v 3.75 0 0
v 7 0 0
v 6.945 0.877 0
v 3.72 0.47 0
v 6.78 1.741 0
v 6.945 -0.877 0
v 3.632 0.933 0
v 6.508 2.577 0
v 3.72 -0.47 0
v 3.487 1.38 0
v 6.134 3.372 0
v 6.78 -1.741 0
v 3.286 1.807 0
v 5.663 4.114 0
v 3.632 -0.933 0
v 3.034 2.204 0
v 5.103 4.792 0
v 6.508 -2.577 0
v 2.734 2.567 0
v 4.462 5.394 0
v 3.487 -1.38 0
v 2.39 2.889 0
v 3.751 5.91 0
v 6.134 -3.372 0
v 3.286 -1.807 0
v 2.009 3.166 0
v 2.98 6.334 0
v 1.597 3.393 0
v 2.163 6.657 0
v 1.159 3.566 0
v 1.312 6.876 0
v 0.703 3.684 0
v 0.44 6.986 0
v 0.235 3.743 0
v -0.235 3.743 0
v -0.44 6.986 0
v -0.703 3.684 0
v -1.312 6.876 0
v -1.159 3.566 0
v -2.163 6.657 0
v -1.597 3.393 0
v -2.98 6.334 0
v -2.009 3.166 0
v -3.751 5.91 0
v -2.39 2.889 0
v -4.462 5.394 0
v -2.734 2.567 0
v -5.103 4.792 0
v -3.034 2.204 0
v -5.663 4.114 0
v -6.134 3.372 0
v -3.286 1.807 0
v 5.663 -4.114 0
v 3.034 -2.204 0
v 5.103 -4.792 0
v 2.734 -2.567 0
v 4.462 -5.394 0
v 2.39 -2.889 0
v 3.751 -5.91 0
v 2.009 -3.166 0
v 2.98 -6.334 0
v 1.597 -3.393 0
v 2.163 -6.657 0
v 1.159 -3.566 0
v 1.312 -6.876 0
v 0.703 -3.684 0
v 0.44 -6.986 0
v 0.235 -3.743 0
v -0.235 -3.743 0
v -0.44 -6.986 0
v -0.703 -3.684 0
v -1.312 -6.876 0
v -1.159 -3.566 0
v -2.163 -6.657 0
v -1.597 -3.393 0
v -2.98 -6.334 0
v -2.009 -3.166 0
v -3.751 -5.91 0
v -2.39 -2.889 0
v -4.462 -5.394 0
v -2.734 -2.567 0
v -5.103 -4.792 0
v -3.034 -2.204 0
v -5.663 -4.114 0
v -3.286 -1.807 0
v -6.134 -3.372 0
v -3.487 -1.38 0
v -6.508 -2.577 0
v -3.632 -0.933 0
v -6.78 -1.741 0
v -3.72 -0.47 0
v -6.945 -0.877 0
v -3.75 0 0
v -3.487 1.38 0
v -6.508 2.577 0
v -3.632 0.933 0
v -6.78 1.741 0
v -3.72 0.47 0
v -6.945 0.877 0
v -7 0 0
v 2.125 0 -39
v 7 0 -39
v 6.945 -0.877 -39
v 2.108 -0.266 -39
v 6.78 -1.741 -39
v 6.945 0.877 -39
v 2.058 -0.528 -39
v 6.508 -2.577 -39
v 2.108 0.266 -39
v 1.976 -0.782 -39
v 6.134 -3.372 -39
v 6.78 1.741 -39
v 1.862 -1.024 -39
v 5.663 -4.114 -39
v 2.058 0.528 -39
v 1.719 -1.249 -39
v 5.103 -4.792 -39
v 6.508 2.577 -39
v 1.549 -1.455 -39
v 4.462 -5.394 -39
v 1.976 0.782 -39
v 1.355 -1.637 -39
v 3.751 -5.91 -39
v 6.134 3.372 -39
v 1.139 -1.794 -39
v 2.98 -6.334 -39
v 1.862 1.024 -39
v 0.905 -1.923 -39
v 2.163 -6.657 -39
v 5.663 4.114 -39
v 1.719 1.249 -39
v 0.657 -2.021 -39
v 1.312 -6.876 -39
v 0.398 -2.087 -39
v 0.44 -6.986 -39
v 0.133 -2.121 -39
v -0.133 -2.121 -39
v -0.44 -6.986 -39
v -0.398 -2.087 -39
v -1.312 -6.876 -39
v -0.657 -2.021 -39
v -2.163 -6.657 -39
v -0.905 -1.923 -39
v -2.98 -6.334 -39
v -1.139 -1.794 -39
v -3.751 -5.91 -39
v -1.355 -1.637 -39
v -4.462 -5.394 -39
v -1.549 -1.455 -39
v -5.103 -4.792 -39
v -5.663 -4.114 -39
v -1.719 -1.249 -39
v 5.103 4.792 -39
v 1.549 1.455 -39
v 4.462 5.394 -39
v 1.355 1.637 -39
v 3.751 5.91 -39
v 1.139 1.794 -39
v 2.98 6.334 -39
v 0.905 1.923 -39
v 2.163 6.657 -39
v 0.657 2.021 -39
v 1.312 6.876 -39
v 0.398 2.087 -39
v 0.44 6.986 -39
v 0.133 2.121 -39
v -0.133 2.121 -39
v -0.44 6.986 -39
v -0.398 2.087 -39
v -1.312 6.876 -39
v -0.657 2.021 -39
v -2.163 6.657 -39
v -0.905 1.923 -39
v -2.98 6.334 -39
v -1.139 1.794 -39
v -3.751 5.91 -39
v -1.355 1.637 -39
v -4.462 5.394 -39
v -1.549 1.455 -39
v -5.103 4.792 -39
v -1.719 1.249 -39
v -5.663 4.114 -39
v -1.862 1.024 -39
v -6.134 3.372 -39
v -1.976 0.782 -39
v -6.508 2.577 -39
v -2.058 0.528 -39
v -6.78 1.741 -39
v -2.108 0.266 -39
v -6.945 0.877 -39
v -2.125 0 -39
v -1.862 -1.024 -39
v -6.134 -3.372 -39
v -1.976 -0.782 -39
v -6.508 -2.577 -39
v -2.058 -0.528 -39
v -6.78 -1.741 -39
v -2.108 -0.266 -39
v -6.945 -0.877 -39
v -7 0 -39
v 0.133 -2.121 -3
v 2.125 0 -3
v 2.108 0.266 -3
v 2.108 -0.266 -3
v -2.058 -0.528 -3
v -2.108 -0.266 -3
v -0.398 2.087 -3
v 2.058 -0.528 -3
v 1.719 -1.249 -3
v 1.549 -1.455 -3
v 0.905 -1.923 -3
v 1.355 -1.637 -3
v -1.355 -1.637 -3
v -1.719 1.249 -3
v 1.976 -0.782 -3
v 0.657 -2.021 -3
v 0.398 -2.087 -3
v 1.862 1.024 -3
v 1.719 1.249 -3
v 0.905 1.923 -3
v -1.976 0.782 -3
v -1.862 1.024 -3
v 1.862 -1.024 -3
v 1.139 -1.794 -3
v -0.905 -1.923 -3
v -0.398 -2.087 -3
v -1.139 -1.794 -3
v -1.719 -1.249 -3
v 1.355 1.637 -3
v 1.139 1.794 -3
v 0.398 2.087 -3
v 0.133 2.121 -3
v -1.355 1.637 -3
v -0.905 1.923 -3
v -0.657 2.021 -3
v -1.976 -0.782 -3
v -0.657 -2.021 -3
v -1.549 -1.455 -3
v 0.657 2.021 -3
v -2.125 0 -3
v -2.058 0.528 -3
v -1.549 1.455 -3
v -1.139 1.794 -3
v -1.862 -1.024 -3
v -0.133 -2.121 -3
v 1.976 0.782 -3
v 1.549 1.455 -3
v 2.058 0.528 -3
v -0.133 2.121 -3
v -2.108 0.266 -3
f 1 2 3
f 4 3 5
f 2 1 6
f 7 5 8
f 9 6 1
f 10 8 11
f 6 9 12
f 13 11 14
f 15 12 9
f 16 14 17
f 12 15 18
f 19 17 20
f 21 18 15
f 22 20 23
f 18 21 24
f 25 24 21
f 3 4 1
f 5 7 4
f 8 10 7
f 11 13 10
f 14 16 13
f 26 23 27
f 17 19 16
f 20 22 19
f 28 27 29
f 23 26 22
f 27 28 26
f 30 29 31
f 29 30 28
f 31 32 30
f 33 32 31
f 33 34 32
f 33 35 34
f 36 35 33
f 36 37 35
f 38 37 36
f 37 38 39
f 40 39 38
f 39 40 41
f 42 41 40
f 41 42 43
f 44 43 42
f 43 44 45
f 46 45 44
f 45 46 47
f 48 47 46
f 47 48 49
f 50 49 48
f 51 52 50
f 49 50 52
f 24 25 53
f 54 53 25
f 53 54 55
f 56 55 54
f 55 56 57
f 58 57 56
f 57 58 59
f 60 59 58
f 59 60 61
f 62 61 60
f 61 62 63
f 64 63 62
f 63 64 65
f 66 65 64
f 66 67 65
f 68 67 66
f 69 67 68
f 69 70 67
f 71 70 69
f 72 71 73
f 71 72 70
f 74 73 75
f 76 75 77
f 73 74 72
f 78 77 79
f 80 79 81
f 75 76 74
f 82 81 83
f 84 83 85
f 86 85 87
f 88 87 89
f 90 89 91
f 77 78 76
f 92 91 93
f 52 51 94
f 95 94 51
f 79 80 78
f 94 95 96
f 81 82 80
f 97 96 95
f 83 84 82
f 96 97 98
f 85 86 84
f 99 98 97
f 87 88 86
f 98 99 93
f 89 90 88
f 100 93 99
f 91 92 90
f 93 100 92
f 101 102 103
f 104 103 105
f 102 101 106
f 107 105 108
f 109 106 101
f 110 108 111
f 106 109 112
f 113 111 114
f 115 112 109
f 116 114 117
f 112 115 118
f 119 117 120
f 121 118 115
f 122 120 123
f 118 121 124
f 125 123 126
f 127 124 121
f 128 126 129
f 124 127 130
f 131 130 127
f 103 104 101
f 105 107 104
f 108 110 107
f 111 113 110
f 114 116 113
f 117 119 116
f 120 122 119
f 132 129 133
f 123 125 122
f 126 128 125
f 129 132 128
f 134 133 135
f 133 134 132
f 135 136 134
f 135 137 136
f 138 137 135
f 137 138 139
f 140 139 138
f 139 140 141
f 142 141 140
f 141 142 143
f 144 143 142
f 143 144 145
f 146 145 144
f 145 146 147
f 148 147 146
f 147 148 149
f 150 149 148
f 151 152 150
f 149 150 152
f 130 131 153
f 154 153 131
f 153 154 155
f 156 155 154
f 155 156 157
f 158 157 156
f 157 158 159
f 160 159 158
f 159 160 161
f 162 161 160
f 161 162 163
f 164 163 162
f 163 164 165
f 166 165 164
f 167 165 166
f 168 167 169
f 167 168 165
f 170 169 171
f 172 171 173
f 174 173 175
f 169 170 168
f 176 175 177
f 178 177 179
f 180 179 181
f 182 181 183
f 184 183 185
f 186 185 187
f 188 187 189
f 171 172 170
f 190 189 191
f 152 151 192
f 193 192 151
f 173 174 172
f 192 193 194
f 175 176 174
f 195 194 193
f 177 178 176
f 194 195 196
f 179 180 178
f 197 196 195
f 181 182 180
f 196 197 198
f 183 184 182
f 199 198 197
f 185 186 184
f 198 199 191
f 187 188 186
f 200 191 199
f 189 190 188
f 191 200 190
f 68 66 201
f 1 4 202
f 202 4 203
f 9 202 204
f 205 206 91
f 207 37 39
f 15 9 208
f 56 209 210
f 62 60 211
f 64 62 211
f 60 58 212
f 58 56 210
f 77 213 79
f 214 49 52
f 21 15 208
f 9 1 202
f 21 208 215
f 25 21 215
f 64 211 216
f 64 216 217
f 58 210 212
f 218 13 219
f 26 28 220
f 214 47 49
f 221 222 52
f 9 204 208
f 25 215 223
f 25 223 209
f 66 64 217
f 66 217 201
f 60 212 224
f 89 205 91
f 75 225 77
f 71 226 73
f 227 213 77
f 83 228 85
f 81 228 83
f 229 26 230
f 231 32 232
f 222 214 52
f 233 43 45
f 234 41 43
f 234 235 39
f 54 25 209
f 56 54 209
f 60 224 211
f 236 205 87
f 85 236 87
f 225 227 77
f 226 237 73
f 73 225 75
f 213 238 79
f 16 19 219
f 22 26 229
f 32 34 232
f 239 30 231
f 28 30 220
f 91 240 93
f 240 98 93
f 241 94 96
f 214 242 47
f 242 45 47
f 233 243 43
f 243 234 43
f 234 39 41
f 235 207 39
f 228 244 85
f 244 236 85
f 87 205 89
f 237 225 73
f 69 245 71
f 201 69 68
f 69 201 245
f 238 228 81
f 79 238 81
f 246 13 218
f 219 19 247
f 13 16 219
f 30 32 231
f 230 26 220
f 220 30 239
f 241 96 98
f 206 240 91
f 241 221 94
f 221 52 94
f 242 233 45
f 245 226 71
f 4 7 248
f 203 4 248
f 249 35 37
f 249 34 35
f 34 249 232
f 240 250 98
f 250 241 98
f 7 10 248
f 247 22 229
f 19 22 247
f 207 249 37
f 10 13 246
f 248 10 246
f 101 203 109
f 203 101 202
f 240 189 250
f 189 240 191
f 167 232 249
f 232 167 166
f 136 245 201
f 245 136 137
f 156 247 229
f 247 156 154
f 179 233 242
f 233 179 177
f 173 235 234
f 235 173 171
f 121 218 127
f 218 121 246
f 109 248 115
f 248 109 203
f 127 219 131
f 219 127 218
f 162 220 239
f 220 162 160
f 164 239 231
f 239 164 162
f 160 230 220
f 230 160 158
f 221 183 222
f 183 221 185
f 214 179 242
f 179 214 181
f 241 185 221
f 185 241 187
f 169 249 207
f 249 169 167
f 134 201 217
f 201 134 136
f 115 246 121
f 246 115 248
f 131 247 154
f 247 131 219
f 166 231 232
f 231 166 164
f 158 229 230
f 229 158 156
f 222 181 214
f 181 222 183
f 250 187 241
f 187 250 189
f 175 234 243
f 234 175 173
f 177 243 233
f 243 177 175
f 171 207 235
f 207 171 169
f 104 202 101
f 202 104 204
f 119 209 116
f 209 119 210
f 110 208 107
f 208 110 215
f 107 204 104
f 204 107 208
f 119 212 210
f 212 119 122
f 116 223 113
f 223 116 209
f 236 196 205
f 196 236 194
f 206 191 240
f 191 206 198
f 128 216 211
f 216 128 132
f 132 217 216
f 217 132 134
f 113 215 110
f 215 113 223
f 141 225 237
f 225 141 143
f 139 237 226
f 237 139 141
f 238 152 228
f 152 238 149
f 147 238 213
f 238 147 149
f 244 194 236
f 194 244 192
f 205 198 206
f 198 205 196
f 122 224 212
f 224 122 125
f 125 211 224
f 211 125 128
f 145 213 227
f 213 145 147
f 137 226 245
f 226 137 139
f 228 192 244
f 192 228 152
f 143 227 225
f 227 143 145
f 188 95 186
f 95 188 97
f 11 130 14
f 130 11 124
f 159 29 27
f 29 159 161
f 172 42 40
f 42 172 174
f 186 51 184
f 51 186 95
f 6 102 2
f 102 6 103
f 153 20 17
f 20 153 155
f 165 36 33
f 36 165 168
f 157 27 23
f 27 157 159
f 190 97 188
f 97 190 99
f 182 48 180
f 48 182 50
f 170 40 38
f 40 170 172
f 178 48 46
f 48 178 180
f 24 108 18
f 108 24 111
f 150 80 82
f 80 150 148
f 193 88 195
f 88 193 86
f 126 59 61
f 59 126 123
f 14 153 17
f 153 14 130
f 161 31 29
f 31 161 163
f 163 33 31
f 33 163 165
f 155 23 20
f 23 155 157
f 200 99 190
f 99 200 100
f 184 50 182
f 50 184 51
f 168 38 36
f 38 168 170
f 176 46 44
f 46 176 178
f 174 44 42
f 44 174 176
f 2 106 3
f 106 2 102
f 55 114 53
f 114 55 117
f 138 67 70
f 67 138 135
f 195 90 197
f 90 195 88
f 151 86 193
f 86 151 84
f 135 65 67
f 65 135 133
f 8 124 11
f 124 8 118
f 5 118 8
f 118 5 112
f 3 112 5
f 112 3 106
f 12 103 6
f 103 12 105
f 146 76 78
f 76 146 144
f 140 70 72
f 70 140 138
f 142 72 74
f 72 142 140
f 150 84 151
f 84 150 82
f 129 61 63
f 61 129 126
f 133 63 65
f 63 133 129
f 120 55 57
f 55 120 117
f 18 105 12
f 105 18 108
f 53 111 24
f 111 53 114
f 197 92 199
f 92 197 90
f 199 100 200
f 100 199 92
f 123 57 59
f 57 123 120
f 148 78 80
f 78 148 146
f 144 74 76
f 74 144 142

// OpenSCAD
$fn = 50;


difference() {
	union() {
		translate(v = [0, 0, -39.0000000000]) {
			cylinder(h = 39, r = 7.0000000000);
		}
	}
	union() {
		translate(v = [0, 0, 0]) {
			rotate(a = [0, 0, 0]) {
				difference() {
					union() {
						#translate(v = [0, 0, -39.0000000000]) {
							cylinder(h = 39, r = 2.0000000000);
						}
						#translate(v = [0, 0, -3]) {
							cylinder(h = 3, r = 7.0000000000, r1 = 2.1250000000, r2 = 3.7500000000);
						}
						#translate(v = [0, 0, -39.0000000000]) {
							cylinder(h = 39, r = 2.1250000000);
						}
						#translate(v = [0, 0, -39.0000000000]) {
							cylinder(h = 39, r = 2.0000000000);
						}
					}
					union();
				}
			}
		}
	}
}
